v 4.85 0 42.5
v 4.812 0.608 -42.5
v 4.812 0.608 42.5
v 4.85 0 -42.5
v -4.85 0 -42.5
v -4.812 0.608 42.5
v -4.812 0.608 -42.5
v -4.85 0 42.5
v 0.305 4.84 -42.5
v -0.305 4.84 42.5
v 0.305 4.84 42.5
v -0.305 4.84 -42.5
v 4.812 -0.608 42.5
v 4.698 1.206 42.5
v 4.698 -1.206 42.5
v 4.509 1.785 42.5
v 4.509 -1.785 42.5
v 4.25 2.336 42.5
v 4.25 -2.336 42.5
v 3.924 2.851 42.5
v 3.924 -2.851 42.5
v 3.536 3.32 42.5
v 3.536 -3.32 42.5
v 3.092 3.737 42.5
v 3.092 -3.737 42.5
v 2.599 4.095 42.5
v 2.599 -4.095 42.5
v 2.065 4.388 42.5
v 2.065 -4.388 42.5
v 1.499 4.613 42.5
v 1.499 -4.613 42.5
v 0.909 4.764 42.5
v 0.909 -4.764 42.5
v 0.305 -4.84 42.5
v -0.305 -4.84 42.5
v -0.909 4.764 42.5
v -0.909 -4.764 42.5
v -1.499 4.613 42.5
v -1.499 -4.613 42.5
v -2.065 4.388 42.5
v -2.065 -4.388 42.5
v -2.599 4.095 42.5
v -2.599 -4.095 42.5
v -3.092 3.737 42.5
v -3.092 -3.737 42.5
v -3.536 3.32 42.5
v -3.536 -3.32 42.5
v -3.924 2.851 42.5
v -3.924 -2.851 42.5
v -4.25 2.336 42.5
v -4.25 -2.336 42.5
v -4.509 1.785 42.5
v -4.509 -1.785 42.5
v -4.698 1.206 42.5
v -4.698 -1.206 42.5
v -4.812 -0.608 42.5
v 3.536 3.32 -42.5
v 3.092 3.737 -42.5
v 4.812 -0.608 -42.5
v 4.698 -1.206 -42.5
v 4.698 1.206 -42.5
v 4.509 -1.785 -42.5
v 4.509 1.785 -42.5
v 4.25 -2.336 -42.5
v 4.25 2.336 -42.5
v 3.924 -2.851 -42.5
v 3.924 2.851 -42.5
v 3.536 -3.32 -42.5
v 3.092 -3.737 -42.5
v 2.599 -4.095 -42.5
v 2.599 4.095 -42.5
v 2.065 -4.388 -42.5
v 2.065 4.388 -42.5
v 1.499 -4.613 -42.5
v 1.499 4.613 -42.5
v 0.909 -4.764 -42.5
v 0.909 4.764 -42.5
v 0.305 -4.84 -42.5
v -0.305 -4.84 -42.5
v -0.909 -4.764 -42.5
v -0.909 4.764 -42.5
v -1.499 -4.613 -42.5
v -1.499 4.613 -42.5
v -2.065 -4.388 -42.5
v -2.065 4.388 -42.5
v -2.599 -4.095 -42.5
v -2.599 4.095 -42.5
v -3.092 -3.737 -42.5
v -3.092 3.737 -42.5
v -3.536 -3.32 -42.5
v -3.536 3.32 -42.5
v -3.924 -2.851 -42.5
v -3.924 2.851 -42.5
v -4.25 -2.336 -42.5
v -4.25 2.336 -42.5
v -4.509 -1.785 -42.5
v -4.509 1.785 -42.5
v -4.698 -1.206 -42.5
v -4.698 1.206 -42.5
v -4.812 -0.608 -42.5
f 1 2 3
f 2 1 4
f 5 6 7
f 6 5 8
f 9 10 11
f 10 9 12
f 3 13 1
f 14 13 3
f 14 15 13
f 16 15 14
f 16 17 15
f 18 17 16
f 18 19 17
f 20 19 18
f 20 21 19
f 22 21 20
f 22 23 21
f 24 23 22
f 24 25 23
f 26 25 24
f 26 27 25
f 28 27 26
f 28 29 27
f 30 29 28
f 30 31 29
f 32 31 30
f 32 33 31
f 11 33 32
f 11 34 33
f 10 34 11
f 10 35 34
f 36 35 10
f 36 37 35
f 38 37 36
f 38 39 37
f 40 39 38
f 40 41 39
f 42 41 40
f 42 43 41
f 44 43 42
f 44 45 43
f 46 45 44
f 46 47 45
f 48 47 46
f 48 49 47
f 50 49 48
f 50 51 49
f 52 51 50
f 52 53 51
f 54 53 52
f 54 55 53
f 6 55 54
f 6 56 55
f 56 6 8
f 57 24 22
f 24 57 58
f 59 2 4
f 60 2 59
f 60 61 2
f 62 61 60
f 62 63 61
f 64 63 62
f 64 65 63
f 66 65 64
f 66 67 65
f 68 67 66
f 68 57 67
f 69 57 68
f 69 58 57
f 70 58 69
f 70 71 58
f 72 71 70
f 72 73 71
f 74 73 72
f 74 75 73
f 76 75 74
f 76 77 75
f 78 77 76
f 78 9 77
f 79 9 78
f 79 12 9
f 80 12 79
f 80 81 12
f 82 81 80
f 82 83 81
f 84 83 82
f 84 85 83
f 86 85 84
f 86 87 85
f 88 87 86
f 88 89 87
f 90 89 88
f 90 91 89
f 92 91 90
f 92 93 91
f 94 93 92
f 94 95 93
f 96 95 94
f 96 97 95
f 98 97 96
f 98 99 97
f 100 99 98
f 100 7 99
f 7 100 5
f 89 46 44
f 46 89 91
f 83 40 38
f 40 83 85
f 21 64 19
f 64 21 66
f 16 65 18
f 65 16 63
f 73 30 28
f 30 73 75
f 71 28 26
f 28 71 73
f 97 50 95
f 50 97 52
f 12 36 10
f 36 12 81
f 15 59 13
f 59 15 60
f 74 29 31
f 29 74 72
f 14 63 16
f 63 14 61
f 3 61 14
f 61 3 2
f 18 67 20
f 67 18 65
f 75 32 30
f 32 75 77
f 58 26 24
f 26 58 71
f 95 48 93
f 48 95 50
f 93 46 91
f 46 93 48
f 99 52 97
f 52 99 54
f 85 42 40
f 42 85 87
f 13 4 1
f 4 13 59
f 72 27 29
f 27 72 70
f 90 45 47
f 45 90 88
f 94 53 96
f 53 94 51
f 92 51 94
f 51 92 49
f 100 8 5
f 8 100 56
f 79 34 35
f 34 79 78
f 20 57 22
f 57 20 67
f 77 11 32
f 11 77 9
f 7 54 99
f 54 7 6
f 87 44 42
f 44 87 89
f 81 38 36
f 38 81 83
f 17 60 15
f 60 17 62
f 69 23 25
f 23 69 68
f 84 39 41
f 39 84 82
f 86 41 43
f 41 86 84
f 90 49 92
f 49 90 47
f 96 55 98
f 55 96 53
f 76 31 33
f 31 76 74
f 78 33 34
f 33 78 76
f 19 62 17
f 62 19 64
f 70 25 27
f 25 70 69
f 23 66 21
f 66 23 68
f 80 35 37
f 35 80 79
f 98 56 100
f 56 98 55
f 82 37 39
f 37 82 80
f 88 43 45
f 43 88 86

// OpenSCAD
$fn = 50;


difference() {
	union() {
		translate(v = [0, 0, -42.5000000000]) {
			cylinder(h = 85, r = 4.8500000000);
		}
	}
	union() {
		translate(v = [0, 0, -100.0000000000]) {
			cylinder(h = 200, r = 0);
		}
	}
}
